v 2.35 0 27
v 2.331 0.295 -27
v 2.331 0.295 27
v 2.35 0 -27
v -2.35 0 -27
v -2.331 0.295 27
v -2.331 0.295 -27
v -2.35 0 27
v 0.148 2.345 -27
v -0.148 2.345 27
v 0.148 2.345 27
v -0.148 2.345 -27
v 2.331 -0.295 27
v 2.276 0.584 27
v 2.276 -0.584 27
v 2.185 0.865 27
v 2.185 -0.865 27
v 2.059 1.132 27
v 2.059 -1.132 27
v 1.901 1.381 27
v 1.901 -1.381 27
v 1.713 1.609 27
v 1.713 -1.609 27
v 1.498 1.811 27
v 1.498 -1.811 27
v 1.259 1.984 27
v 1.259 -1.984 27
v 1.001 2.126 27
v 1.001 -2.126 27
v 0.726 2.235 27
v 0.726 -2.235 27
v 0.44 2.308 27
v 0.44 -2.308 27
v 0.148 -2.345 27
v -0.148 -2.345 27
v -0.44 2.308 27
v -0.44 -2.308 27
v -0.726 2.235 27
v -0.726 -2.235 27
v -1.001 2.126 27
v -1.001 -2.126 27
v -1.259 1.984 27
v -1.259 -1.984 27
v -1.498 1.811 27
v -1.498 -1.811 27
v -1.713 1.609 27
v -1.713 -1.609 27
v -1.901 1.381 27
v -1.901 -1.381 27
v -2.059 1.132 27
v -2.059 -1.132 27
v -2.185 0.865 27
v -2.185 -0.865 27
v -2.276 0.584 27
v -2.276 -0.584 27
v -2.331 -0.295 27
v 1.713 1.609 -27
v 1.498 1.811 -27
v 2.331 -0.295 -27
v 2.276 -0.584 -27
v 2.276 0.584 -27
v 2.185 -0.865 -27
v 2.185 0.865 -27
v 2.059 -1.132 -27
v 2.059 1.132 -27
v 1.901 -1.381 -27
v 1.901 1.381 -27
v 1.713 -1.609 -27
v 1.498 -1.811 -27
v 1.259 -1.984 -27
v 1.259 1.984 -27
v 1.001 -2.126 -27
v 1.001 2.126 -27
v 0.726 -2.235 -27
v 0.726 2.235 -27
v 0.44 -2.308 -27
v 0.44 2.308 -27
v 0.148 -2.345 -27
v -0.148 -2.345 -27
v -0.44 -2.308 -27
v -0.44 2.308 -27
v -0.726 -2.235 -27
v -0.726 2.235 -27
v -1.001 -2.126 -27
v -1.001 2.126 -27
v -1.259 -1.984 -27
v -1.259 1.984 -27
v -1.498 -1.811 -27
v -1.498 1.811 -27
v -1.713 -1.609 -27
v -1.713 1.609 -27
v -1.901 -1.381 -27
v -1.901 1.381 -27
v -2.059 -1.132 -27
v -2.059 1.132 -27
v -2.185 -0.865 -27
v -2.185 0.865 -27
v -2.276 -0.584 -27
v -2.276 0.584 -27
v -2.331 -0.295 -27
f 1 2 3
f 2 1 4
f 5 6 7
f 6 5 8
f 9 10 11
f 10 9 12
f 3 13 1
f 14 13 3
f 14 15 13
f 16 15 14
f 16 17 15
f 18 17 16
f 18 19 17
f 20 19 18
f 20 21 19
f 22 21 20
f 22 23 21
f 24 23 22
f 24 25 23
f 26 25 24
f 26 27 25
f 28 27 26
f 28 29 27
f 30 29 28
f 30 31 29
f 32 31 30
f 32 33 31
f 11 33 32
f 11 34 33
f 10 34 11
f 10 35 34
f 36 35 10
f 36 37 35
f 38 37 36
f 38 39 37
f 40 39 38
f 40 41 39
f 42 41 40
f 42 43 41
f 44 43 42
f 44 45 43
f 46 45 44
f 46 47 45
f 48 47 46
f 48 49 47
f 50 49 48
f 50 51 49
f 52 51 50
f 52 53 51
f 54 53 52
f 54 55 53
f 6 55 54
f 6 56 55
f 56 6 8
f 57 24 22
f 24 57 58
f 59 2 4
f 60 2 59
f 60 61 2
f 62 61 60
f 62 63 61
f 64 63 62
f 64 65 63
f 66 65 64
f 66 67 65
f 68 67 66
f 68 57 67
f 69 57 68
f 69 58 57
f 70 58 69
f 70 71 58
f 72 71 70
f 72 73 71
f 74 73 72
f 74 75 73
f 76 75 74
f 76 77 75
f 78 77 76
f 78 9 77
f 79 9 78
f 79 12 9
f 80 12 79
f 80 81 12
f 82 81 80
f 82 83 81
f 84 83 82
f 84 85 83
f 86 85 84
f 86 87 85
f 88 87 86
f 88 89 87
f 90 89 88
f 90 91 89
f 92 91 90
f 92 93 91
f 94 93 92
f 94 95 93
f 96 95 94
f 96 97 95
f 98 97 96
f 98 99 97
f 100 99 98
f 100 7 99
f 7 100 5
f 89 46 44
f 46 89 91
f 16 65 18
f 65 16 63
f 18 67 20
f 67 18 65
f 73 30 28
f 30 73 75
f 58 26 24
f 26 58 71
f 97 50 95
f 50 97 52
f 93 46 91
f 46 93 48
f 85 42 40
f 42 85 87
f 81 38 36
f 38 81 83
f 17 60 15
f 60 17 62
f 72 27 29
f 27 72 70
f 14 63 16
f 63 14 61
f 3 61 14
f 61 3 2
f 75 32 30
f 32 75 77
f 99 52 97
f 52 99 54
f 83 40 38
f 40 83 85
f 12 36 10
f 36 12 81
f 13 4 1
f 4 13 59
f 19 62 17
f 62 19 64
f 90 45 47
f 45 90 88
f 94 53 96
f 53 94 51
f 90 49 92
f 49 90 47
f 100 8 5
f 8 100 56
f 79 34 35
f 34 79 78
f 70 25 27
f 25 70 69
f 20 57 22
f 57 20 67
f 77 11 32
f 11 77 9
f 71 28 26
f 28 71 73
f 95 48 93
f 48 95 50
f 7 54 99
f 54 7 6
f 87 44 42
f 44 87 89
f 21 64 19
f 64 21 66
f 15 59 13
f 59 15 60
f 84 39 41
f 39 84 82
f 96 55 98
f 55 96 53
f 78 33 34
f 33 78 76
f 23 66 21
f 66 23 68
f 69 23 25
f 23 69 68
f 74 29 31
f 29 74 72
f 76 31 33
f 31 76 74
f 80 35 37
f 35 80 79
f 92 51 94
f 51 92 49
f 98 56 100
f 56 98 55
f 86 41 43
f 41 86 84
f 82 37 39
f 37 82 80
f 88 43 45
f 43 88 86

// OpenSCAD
$fn = 50;


difference() {
	union() {
		translate(v = [0, 0, -27.0000000000]) {
			cylinder(h = 54, r = 2.3500000000);
		}
	}
	union() {
		translate(v = [0, 0, -100.0000000000]) {
			cylinder(h = 200, r = 0);
		}
	}
}
